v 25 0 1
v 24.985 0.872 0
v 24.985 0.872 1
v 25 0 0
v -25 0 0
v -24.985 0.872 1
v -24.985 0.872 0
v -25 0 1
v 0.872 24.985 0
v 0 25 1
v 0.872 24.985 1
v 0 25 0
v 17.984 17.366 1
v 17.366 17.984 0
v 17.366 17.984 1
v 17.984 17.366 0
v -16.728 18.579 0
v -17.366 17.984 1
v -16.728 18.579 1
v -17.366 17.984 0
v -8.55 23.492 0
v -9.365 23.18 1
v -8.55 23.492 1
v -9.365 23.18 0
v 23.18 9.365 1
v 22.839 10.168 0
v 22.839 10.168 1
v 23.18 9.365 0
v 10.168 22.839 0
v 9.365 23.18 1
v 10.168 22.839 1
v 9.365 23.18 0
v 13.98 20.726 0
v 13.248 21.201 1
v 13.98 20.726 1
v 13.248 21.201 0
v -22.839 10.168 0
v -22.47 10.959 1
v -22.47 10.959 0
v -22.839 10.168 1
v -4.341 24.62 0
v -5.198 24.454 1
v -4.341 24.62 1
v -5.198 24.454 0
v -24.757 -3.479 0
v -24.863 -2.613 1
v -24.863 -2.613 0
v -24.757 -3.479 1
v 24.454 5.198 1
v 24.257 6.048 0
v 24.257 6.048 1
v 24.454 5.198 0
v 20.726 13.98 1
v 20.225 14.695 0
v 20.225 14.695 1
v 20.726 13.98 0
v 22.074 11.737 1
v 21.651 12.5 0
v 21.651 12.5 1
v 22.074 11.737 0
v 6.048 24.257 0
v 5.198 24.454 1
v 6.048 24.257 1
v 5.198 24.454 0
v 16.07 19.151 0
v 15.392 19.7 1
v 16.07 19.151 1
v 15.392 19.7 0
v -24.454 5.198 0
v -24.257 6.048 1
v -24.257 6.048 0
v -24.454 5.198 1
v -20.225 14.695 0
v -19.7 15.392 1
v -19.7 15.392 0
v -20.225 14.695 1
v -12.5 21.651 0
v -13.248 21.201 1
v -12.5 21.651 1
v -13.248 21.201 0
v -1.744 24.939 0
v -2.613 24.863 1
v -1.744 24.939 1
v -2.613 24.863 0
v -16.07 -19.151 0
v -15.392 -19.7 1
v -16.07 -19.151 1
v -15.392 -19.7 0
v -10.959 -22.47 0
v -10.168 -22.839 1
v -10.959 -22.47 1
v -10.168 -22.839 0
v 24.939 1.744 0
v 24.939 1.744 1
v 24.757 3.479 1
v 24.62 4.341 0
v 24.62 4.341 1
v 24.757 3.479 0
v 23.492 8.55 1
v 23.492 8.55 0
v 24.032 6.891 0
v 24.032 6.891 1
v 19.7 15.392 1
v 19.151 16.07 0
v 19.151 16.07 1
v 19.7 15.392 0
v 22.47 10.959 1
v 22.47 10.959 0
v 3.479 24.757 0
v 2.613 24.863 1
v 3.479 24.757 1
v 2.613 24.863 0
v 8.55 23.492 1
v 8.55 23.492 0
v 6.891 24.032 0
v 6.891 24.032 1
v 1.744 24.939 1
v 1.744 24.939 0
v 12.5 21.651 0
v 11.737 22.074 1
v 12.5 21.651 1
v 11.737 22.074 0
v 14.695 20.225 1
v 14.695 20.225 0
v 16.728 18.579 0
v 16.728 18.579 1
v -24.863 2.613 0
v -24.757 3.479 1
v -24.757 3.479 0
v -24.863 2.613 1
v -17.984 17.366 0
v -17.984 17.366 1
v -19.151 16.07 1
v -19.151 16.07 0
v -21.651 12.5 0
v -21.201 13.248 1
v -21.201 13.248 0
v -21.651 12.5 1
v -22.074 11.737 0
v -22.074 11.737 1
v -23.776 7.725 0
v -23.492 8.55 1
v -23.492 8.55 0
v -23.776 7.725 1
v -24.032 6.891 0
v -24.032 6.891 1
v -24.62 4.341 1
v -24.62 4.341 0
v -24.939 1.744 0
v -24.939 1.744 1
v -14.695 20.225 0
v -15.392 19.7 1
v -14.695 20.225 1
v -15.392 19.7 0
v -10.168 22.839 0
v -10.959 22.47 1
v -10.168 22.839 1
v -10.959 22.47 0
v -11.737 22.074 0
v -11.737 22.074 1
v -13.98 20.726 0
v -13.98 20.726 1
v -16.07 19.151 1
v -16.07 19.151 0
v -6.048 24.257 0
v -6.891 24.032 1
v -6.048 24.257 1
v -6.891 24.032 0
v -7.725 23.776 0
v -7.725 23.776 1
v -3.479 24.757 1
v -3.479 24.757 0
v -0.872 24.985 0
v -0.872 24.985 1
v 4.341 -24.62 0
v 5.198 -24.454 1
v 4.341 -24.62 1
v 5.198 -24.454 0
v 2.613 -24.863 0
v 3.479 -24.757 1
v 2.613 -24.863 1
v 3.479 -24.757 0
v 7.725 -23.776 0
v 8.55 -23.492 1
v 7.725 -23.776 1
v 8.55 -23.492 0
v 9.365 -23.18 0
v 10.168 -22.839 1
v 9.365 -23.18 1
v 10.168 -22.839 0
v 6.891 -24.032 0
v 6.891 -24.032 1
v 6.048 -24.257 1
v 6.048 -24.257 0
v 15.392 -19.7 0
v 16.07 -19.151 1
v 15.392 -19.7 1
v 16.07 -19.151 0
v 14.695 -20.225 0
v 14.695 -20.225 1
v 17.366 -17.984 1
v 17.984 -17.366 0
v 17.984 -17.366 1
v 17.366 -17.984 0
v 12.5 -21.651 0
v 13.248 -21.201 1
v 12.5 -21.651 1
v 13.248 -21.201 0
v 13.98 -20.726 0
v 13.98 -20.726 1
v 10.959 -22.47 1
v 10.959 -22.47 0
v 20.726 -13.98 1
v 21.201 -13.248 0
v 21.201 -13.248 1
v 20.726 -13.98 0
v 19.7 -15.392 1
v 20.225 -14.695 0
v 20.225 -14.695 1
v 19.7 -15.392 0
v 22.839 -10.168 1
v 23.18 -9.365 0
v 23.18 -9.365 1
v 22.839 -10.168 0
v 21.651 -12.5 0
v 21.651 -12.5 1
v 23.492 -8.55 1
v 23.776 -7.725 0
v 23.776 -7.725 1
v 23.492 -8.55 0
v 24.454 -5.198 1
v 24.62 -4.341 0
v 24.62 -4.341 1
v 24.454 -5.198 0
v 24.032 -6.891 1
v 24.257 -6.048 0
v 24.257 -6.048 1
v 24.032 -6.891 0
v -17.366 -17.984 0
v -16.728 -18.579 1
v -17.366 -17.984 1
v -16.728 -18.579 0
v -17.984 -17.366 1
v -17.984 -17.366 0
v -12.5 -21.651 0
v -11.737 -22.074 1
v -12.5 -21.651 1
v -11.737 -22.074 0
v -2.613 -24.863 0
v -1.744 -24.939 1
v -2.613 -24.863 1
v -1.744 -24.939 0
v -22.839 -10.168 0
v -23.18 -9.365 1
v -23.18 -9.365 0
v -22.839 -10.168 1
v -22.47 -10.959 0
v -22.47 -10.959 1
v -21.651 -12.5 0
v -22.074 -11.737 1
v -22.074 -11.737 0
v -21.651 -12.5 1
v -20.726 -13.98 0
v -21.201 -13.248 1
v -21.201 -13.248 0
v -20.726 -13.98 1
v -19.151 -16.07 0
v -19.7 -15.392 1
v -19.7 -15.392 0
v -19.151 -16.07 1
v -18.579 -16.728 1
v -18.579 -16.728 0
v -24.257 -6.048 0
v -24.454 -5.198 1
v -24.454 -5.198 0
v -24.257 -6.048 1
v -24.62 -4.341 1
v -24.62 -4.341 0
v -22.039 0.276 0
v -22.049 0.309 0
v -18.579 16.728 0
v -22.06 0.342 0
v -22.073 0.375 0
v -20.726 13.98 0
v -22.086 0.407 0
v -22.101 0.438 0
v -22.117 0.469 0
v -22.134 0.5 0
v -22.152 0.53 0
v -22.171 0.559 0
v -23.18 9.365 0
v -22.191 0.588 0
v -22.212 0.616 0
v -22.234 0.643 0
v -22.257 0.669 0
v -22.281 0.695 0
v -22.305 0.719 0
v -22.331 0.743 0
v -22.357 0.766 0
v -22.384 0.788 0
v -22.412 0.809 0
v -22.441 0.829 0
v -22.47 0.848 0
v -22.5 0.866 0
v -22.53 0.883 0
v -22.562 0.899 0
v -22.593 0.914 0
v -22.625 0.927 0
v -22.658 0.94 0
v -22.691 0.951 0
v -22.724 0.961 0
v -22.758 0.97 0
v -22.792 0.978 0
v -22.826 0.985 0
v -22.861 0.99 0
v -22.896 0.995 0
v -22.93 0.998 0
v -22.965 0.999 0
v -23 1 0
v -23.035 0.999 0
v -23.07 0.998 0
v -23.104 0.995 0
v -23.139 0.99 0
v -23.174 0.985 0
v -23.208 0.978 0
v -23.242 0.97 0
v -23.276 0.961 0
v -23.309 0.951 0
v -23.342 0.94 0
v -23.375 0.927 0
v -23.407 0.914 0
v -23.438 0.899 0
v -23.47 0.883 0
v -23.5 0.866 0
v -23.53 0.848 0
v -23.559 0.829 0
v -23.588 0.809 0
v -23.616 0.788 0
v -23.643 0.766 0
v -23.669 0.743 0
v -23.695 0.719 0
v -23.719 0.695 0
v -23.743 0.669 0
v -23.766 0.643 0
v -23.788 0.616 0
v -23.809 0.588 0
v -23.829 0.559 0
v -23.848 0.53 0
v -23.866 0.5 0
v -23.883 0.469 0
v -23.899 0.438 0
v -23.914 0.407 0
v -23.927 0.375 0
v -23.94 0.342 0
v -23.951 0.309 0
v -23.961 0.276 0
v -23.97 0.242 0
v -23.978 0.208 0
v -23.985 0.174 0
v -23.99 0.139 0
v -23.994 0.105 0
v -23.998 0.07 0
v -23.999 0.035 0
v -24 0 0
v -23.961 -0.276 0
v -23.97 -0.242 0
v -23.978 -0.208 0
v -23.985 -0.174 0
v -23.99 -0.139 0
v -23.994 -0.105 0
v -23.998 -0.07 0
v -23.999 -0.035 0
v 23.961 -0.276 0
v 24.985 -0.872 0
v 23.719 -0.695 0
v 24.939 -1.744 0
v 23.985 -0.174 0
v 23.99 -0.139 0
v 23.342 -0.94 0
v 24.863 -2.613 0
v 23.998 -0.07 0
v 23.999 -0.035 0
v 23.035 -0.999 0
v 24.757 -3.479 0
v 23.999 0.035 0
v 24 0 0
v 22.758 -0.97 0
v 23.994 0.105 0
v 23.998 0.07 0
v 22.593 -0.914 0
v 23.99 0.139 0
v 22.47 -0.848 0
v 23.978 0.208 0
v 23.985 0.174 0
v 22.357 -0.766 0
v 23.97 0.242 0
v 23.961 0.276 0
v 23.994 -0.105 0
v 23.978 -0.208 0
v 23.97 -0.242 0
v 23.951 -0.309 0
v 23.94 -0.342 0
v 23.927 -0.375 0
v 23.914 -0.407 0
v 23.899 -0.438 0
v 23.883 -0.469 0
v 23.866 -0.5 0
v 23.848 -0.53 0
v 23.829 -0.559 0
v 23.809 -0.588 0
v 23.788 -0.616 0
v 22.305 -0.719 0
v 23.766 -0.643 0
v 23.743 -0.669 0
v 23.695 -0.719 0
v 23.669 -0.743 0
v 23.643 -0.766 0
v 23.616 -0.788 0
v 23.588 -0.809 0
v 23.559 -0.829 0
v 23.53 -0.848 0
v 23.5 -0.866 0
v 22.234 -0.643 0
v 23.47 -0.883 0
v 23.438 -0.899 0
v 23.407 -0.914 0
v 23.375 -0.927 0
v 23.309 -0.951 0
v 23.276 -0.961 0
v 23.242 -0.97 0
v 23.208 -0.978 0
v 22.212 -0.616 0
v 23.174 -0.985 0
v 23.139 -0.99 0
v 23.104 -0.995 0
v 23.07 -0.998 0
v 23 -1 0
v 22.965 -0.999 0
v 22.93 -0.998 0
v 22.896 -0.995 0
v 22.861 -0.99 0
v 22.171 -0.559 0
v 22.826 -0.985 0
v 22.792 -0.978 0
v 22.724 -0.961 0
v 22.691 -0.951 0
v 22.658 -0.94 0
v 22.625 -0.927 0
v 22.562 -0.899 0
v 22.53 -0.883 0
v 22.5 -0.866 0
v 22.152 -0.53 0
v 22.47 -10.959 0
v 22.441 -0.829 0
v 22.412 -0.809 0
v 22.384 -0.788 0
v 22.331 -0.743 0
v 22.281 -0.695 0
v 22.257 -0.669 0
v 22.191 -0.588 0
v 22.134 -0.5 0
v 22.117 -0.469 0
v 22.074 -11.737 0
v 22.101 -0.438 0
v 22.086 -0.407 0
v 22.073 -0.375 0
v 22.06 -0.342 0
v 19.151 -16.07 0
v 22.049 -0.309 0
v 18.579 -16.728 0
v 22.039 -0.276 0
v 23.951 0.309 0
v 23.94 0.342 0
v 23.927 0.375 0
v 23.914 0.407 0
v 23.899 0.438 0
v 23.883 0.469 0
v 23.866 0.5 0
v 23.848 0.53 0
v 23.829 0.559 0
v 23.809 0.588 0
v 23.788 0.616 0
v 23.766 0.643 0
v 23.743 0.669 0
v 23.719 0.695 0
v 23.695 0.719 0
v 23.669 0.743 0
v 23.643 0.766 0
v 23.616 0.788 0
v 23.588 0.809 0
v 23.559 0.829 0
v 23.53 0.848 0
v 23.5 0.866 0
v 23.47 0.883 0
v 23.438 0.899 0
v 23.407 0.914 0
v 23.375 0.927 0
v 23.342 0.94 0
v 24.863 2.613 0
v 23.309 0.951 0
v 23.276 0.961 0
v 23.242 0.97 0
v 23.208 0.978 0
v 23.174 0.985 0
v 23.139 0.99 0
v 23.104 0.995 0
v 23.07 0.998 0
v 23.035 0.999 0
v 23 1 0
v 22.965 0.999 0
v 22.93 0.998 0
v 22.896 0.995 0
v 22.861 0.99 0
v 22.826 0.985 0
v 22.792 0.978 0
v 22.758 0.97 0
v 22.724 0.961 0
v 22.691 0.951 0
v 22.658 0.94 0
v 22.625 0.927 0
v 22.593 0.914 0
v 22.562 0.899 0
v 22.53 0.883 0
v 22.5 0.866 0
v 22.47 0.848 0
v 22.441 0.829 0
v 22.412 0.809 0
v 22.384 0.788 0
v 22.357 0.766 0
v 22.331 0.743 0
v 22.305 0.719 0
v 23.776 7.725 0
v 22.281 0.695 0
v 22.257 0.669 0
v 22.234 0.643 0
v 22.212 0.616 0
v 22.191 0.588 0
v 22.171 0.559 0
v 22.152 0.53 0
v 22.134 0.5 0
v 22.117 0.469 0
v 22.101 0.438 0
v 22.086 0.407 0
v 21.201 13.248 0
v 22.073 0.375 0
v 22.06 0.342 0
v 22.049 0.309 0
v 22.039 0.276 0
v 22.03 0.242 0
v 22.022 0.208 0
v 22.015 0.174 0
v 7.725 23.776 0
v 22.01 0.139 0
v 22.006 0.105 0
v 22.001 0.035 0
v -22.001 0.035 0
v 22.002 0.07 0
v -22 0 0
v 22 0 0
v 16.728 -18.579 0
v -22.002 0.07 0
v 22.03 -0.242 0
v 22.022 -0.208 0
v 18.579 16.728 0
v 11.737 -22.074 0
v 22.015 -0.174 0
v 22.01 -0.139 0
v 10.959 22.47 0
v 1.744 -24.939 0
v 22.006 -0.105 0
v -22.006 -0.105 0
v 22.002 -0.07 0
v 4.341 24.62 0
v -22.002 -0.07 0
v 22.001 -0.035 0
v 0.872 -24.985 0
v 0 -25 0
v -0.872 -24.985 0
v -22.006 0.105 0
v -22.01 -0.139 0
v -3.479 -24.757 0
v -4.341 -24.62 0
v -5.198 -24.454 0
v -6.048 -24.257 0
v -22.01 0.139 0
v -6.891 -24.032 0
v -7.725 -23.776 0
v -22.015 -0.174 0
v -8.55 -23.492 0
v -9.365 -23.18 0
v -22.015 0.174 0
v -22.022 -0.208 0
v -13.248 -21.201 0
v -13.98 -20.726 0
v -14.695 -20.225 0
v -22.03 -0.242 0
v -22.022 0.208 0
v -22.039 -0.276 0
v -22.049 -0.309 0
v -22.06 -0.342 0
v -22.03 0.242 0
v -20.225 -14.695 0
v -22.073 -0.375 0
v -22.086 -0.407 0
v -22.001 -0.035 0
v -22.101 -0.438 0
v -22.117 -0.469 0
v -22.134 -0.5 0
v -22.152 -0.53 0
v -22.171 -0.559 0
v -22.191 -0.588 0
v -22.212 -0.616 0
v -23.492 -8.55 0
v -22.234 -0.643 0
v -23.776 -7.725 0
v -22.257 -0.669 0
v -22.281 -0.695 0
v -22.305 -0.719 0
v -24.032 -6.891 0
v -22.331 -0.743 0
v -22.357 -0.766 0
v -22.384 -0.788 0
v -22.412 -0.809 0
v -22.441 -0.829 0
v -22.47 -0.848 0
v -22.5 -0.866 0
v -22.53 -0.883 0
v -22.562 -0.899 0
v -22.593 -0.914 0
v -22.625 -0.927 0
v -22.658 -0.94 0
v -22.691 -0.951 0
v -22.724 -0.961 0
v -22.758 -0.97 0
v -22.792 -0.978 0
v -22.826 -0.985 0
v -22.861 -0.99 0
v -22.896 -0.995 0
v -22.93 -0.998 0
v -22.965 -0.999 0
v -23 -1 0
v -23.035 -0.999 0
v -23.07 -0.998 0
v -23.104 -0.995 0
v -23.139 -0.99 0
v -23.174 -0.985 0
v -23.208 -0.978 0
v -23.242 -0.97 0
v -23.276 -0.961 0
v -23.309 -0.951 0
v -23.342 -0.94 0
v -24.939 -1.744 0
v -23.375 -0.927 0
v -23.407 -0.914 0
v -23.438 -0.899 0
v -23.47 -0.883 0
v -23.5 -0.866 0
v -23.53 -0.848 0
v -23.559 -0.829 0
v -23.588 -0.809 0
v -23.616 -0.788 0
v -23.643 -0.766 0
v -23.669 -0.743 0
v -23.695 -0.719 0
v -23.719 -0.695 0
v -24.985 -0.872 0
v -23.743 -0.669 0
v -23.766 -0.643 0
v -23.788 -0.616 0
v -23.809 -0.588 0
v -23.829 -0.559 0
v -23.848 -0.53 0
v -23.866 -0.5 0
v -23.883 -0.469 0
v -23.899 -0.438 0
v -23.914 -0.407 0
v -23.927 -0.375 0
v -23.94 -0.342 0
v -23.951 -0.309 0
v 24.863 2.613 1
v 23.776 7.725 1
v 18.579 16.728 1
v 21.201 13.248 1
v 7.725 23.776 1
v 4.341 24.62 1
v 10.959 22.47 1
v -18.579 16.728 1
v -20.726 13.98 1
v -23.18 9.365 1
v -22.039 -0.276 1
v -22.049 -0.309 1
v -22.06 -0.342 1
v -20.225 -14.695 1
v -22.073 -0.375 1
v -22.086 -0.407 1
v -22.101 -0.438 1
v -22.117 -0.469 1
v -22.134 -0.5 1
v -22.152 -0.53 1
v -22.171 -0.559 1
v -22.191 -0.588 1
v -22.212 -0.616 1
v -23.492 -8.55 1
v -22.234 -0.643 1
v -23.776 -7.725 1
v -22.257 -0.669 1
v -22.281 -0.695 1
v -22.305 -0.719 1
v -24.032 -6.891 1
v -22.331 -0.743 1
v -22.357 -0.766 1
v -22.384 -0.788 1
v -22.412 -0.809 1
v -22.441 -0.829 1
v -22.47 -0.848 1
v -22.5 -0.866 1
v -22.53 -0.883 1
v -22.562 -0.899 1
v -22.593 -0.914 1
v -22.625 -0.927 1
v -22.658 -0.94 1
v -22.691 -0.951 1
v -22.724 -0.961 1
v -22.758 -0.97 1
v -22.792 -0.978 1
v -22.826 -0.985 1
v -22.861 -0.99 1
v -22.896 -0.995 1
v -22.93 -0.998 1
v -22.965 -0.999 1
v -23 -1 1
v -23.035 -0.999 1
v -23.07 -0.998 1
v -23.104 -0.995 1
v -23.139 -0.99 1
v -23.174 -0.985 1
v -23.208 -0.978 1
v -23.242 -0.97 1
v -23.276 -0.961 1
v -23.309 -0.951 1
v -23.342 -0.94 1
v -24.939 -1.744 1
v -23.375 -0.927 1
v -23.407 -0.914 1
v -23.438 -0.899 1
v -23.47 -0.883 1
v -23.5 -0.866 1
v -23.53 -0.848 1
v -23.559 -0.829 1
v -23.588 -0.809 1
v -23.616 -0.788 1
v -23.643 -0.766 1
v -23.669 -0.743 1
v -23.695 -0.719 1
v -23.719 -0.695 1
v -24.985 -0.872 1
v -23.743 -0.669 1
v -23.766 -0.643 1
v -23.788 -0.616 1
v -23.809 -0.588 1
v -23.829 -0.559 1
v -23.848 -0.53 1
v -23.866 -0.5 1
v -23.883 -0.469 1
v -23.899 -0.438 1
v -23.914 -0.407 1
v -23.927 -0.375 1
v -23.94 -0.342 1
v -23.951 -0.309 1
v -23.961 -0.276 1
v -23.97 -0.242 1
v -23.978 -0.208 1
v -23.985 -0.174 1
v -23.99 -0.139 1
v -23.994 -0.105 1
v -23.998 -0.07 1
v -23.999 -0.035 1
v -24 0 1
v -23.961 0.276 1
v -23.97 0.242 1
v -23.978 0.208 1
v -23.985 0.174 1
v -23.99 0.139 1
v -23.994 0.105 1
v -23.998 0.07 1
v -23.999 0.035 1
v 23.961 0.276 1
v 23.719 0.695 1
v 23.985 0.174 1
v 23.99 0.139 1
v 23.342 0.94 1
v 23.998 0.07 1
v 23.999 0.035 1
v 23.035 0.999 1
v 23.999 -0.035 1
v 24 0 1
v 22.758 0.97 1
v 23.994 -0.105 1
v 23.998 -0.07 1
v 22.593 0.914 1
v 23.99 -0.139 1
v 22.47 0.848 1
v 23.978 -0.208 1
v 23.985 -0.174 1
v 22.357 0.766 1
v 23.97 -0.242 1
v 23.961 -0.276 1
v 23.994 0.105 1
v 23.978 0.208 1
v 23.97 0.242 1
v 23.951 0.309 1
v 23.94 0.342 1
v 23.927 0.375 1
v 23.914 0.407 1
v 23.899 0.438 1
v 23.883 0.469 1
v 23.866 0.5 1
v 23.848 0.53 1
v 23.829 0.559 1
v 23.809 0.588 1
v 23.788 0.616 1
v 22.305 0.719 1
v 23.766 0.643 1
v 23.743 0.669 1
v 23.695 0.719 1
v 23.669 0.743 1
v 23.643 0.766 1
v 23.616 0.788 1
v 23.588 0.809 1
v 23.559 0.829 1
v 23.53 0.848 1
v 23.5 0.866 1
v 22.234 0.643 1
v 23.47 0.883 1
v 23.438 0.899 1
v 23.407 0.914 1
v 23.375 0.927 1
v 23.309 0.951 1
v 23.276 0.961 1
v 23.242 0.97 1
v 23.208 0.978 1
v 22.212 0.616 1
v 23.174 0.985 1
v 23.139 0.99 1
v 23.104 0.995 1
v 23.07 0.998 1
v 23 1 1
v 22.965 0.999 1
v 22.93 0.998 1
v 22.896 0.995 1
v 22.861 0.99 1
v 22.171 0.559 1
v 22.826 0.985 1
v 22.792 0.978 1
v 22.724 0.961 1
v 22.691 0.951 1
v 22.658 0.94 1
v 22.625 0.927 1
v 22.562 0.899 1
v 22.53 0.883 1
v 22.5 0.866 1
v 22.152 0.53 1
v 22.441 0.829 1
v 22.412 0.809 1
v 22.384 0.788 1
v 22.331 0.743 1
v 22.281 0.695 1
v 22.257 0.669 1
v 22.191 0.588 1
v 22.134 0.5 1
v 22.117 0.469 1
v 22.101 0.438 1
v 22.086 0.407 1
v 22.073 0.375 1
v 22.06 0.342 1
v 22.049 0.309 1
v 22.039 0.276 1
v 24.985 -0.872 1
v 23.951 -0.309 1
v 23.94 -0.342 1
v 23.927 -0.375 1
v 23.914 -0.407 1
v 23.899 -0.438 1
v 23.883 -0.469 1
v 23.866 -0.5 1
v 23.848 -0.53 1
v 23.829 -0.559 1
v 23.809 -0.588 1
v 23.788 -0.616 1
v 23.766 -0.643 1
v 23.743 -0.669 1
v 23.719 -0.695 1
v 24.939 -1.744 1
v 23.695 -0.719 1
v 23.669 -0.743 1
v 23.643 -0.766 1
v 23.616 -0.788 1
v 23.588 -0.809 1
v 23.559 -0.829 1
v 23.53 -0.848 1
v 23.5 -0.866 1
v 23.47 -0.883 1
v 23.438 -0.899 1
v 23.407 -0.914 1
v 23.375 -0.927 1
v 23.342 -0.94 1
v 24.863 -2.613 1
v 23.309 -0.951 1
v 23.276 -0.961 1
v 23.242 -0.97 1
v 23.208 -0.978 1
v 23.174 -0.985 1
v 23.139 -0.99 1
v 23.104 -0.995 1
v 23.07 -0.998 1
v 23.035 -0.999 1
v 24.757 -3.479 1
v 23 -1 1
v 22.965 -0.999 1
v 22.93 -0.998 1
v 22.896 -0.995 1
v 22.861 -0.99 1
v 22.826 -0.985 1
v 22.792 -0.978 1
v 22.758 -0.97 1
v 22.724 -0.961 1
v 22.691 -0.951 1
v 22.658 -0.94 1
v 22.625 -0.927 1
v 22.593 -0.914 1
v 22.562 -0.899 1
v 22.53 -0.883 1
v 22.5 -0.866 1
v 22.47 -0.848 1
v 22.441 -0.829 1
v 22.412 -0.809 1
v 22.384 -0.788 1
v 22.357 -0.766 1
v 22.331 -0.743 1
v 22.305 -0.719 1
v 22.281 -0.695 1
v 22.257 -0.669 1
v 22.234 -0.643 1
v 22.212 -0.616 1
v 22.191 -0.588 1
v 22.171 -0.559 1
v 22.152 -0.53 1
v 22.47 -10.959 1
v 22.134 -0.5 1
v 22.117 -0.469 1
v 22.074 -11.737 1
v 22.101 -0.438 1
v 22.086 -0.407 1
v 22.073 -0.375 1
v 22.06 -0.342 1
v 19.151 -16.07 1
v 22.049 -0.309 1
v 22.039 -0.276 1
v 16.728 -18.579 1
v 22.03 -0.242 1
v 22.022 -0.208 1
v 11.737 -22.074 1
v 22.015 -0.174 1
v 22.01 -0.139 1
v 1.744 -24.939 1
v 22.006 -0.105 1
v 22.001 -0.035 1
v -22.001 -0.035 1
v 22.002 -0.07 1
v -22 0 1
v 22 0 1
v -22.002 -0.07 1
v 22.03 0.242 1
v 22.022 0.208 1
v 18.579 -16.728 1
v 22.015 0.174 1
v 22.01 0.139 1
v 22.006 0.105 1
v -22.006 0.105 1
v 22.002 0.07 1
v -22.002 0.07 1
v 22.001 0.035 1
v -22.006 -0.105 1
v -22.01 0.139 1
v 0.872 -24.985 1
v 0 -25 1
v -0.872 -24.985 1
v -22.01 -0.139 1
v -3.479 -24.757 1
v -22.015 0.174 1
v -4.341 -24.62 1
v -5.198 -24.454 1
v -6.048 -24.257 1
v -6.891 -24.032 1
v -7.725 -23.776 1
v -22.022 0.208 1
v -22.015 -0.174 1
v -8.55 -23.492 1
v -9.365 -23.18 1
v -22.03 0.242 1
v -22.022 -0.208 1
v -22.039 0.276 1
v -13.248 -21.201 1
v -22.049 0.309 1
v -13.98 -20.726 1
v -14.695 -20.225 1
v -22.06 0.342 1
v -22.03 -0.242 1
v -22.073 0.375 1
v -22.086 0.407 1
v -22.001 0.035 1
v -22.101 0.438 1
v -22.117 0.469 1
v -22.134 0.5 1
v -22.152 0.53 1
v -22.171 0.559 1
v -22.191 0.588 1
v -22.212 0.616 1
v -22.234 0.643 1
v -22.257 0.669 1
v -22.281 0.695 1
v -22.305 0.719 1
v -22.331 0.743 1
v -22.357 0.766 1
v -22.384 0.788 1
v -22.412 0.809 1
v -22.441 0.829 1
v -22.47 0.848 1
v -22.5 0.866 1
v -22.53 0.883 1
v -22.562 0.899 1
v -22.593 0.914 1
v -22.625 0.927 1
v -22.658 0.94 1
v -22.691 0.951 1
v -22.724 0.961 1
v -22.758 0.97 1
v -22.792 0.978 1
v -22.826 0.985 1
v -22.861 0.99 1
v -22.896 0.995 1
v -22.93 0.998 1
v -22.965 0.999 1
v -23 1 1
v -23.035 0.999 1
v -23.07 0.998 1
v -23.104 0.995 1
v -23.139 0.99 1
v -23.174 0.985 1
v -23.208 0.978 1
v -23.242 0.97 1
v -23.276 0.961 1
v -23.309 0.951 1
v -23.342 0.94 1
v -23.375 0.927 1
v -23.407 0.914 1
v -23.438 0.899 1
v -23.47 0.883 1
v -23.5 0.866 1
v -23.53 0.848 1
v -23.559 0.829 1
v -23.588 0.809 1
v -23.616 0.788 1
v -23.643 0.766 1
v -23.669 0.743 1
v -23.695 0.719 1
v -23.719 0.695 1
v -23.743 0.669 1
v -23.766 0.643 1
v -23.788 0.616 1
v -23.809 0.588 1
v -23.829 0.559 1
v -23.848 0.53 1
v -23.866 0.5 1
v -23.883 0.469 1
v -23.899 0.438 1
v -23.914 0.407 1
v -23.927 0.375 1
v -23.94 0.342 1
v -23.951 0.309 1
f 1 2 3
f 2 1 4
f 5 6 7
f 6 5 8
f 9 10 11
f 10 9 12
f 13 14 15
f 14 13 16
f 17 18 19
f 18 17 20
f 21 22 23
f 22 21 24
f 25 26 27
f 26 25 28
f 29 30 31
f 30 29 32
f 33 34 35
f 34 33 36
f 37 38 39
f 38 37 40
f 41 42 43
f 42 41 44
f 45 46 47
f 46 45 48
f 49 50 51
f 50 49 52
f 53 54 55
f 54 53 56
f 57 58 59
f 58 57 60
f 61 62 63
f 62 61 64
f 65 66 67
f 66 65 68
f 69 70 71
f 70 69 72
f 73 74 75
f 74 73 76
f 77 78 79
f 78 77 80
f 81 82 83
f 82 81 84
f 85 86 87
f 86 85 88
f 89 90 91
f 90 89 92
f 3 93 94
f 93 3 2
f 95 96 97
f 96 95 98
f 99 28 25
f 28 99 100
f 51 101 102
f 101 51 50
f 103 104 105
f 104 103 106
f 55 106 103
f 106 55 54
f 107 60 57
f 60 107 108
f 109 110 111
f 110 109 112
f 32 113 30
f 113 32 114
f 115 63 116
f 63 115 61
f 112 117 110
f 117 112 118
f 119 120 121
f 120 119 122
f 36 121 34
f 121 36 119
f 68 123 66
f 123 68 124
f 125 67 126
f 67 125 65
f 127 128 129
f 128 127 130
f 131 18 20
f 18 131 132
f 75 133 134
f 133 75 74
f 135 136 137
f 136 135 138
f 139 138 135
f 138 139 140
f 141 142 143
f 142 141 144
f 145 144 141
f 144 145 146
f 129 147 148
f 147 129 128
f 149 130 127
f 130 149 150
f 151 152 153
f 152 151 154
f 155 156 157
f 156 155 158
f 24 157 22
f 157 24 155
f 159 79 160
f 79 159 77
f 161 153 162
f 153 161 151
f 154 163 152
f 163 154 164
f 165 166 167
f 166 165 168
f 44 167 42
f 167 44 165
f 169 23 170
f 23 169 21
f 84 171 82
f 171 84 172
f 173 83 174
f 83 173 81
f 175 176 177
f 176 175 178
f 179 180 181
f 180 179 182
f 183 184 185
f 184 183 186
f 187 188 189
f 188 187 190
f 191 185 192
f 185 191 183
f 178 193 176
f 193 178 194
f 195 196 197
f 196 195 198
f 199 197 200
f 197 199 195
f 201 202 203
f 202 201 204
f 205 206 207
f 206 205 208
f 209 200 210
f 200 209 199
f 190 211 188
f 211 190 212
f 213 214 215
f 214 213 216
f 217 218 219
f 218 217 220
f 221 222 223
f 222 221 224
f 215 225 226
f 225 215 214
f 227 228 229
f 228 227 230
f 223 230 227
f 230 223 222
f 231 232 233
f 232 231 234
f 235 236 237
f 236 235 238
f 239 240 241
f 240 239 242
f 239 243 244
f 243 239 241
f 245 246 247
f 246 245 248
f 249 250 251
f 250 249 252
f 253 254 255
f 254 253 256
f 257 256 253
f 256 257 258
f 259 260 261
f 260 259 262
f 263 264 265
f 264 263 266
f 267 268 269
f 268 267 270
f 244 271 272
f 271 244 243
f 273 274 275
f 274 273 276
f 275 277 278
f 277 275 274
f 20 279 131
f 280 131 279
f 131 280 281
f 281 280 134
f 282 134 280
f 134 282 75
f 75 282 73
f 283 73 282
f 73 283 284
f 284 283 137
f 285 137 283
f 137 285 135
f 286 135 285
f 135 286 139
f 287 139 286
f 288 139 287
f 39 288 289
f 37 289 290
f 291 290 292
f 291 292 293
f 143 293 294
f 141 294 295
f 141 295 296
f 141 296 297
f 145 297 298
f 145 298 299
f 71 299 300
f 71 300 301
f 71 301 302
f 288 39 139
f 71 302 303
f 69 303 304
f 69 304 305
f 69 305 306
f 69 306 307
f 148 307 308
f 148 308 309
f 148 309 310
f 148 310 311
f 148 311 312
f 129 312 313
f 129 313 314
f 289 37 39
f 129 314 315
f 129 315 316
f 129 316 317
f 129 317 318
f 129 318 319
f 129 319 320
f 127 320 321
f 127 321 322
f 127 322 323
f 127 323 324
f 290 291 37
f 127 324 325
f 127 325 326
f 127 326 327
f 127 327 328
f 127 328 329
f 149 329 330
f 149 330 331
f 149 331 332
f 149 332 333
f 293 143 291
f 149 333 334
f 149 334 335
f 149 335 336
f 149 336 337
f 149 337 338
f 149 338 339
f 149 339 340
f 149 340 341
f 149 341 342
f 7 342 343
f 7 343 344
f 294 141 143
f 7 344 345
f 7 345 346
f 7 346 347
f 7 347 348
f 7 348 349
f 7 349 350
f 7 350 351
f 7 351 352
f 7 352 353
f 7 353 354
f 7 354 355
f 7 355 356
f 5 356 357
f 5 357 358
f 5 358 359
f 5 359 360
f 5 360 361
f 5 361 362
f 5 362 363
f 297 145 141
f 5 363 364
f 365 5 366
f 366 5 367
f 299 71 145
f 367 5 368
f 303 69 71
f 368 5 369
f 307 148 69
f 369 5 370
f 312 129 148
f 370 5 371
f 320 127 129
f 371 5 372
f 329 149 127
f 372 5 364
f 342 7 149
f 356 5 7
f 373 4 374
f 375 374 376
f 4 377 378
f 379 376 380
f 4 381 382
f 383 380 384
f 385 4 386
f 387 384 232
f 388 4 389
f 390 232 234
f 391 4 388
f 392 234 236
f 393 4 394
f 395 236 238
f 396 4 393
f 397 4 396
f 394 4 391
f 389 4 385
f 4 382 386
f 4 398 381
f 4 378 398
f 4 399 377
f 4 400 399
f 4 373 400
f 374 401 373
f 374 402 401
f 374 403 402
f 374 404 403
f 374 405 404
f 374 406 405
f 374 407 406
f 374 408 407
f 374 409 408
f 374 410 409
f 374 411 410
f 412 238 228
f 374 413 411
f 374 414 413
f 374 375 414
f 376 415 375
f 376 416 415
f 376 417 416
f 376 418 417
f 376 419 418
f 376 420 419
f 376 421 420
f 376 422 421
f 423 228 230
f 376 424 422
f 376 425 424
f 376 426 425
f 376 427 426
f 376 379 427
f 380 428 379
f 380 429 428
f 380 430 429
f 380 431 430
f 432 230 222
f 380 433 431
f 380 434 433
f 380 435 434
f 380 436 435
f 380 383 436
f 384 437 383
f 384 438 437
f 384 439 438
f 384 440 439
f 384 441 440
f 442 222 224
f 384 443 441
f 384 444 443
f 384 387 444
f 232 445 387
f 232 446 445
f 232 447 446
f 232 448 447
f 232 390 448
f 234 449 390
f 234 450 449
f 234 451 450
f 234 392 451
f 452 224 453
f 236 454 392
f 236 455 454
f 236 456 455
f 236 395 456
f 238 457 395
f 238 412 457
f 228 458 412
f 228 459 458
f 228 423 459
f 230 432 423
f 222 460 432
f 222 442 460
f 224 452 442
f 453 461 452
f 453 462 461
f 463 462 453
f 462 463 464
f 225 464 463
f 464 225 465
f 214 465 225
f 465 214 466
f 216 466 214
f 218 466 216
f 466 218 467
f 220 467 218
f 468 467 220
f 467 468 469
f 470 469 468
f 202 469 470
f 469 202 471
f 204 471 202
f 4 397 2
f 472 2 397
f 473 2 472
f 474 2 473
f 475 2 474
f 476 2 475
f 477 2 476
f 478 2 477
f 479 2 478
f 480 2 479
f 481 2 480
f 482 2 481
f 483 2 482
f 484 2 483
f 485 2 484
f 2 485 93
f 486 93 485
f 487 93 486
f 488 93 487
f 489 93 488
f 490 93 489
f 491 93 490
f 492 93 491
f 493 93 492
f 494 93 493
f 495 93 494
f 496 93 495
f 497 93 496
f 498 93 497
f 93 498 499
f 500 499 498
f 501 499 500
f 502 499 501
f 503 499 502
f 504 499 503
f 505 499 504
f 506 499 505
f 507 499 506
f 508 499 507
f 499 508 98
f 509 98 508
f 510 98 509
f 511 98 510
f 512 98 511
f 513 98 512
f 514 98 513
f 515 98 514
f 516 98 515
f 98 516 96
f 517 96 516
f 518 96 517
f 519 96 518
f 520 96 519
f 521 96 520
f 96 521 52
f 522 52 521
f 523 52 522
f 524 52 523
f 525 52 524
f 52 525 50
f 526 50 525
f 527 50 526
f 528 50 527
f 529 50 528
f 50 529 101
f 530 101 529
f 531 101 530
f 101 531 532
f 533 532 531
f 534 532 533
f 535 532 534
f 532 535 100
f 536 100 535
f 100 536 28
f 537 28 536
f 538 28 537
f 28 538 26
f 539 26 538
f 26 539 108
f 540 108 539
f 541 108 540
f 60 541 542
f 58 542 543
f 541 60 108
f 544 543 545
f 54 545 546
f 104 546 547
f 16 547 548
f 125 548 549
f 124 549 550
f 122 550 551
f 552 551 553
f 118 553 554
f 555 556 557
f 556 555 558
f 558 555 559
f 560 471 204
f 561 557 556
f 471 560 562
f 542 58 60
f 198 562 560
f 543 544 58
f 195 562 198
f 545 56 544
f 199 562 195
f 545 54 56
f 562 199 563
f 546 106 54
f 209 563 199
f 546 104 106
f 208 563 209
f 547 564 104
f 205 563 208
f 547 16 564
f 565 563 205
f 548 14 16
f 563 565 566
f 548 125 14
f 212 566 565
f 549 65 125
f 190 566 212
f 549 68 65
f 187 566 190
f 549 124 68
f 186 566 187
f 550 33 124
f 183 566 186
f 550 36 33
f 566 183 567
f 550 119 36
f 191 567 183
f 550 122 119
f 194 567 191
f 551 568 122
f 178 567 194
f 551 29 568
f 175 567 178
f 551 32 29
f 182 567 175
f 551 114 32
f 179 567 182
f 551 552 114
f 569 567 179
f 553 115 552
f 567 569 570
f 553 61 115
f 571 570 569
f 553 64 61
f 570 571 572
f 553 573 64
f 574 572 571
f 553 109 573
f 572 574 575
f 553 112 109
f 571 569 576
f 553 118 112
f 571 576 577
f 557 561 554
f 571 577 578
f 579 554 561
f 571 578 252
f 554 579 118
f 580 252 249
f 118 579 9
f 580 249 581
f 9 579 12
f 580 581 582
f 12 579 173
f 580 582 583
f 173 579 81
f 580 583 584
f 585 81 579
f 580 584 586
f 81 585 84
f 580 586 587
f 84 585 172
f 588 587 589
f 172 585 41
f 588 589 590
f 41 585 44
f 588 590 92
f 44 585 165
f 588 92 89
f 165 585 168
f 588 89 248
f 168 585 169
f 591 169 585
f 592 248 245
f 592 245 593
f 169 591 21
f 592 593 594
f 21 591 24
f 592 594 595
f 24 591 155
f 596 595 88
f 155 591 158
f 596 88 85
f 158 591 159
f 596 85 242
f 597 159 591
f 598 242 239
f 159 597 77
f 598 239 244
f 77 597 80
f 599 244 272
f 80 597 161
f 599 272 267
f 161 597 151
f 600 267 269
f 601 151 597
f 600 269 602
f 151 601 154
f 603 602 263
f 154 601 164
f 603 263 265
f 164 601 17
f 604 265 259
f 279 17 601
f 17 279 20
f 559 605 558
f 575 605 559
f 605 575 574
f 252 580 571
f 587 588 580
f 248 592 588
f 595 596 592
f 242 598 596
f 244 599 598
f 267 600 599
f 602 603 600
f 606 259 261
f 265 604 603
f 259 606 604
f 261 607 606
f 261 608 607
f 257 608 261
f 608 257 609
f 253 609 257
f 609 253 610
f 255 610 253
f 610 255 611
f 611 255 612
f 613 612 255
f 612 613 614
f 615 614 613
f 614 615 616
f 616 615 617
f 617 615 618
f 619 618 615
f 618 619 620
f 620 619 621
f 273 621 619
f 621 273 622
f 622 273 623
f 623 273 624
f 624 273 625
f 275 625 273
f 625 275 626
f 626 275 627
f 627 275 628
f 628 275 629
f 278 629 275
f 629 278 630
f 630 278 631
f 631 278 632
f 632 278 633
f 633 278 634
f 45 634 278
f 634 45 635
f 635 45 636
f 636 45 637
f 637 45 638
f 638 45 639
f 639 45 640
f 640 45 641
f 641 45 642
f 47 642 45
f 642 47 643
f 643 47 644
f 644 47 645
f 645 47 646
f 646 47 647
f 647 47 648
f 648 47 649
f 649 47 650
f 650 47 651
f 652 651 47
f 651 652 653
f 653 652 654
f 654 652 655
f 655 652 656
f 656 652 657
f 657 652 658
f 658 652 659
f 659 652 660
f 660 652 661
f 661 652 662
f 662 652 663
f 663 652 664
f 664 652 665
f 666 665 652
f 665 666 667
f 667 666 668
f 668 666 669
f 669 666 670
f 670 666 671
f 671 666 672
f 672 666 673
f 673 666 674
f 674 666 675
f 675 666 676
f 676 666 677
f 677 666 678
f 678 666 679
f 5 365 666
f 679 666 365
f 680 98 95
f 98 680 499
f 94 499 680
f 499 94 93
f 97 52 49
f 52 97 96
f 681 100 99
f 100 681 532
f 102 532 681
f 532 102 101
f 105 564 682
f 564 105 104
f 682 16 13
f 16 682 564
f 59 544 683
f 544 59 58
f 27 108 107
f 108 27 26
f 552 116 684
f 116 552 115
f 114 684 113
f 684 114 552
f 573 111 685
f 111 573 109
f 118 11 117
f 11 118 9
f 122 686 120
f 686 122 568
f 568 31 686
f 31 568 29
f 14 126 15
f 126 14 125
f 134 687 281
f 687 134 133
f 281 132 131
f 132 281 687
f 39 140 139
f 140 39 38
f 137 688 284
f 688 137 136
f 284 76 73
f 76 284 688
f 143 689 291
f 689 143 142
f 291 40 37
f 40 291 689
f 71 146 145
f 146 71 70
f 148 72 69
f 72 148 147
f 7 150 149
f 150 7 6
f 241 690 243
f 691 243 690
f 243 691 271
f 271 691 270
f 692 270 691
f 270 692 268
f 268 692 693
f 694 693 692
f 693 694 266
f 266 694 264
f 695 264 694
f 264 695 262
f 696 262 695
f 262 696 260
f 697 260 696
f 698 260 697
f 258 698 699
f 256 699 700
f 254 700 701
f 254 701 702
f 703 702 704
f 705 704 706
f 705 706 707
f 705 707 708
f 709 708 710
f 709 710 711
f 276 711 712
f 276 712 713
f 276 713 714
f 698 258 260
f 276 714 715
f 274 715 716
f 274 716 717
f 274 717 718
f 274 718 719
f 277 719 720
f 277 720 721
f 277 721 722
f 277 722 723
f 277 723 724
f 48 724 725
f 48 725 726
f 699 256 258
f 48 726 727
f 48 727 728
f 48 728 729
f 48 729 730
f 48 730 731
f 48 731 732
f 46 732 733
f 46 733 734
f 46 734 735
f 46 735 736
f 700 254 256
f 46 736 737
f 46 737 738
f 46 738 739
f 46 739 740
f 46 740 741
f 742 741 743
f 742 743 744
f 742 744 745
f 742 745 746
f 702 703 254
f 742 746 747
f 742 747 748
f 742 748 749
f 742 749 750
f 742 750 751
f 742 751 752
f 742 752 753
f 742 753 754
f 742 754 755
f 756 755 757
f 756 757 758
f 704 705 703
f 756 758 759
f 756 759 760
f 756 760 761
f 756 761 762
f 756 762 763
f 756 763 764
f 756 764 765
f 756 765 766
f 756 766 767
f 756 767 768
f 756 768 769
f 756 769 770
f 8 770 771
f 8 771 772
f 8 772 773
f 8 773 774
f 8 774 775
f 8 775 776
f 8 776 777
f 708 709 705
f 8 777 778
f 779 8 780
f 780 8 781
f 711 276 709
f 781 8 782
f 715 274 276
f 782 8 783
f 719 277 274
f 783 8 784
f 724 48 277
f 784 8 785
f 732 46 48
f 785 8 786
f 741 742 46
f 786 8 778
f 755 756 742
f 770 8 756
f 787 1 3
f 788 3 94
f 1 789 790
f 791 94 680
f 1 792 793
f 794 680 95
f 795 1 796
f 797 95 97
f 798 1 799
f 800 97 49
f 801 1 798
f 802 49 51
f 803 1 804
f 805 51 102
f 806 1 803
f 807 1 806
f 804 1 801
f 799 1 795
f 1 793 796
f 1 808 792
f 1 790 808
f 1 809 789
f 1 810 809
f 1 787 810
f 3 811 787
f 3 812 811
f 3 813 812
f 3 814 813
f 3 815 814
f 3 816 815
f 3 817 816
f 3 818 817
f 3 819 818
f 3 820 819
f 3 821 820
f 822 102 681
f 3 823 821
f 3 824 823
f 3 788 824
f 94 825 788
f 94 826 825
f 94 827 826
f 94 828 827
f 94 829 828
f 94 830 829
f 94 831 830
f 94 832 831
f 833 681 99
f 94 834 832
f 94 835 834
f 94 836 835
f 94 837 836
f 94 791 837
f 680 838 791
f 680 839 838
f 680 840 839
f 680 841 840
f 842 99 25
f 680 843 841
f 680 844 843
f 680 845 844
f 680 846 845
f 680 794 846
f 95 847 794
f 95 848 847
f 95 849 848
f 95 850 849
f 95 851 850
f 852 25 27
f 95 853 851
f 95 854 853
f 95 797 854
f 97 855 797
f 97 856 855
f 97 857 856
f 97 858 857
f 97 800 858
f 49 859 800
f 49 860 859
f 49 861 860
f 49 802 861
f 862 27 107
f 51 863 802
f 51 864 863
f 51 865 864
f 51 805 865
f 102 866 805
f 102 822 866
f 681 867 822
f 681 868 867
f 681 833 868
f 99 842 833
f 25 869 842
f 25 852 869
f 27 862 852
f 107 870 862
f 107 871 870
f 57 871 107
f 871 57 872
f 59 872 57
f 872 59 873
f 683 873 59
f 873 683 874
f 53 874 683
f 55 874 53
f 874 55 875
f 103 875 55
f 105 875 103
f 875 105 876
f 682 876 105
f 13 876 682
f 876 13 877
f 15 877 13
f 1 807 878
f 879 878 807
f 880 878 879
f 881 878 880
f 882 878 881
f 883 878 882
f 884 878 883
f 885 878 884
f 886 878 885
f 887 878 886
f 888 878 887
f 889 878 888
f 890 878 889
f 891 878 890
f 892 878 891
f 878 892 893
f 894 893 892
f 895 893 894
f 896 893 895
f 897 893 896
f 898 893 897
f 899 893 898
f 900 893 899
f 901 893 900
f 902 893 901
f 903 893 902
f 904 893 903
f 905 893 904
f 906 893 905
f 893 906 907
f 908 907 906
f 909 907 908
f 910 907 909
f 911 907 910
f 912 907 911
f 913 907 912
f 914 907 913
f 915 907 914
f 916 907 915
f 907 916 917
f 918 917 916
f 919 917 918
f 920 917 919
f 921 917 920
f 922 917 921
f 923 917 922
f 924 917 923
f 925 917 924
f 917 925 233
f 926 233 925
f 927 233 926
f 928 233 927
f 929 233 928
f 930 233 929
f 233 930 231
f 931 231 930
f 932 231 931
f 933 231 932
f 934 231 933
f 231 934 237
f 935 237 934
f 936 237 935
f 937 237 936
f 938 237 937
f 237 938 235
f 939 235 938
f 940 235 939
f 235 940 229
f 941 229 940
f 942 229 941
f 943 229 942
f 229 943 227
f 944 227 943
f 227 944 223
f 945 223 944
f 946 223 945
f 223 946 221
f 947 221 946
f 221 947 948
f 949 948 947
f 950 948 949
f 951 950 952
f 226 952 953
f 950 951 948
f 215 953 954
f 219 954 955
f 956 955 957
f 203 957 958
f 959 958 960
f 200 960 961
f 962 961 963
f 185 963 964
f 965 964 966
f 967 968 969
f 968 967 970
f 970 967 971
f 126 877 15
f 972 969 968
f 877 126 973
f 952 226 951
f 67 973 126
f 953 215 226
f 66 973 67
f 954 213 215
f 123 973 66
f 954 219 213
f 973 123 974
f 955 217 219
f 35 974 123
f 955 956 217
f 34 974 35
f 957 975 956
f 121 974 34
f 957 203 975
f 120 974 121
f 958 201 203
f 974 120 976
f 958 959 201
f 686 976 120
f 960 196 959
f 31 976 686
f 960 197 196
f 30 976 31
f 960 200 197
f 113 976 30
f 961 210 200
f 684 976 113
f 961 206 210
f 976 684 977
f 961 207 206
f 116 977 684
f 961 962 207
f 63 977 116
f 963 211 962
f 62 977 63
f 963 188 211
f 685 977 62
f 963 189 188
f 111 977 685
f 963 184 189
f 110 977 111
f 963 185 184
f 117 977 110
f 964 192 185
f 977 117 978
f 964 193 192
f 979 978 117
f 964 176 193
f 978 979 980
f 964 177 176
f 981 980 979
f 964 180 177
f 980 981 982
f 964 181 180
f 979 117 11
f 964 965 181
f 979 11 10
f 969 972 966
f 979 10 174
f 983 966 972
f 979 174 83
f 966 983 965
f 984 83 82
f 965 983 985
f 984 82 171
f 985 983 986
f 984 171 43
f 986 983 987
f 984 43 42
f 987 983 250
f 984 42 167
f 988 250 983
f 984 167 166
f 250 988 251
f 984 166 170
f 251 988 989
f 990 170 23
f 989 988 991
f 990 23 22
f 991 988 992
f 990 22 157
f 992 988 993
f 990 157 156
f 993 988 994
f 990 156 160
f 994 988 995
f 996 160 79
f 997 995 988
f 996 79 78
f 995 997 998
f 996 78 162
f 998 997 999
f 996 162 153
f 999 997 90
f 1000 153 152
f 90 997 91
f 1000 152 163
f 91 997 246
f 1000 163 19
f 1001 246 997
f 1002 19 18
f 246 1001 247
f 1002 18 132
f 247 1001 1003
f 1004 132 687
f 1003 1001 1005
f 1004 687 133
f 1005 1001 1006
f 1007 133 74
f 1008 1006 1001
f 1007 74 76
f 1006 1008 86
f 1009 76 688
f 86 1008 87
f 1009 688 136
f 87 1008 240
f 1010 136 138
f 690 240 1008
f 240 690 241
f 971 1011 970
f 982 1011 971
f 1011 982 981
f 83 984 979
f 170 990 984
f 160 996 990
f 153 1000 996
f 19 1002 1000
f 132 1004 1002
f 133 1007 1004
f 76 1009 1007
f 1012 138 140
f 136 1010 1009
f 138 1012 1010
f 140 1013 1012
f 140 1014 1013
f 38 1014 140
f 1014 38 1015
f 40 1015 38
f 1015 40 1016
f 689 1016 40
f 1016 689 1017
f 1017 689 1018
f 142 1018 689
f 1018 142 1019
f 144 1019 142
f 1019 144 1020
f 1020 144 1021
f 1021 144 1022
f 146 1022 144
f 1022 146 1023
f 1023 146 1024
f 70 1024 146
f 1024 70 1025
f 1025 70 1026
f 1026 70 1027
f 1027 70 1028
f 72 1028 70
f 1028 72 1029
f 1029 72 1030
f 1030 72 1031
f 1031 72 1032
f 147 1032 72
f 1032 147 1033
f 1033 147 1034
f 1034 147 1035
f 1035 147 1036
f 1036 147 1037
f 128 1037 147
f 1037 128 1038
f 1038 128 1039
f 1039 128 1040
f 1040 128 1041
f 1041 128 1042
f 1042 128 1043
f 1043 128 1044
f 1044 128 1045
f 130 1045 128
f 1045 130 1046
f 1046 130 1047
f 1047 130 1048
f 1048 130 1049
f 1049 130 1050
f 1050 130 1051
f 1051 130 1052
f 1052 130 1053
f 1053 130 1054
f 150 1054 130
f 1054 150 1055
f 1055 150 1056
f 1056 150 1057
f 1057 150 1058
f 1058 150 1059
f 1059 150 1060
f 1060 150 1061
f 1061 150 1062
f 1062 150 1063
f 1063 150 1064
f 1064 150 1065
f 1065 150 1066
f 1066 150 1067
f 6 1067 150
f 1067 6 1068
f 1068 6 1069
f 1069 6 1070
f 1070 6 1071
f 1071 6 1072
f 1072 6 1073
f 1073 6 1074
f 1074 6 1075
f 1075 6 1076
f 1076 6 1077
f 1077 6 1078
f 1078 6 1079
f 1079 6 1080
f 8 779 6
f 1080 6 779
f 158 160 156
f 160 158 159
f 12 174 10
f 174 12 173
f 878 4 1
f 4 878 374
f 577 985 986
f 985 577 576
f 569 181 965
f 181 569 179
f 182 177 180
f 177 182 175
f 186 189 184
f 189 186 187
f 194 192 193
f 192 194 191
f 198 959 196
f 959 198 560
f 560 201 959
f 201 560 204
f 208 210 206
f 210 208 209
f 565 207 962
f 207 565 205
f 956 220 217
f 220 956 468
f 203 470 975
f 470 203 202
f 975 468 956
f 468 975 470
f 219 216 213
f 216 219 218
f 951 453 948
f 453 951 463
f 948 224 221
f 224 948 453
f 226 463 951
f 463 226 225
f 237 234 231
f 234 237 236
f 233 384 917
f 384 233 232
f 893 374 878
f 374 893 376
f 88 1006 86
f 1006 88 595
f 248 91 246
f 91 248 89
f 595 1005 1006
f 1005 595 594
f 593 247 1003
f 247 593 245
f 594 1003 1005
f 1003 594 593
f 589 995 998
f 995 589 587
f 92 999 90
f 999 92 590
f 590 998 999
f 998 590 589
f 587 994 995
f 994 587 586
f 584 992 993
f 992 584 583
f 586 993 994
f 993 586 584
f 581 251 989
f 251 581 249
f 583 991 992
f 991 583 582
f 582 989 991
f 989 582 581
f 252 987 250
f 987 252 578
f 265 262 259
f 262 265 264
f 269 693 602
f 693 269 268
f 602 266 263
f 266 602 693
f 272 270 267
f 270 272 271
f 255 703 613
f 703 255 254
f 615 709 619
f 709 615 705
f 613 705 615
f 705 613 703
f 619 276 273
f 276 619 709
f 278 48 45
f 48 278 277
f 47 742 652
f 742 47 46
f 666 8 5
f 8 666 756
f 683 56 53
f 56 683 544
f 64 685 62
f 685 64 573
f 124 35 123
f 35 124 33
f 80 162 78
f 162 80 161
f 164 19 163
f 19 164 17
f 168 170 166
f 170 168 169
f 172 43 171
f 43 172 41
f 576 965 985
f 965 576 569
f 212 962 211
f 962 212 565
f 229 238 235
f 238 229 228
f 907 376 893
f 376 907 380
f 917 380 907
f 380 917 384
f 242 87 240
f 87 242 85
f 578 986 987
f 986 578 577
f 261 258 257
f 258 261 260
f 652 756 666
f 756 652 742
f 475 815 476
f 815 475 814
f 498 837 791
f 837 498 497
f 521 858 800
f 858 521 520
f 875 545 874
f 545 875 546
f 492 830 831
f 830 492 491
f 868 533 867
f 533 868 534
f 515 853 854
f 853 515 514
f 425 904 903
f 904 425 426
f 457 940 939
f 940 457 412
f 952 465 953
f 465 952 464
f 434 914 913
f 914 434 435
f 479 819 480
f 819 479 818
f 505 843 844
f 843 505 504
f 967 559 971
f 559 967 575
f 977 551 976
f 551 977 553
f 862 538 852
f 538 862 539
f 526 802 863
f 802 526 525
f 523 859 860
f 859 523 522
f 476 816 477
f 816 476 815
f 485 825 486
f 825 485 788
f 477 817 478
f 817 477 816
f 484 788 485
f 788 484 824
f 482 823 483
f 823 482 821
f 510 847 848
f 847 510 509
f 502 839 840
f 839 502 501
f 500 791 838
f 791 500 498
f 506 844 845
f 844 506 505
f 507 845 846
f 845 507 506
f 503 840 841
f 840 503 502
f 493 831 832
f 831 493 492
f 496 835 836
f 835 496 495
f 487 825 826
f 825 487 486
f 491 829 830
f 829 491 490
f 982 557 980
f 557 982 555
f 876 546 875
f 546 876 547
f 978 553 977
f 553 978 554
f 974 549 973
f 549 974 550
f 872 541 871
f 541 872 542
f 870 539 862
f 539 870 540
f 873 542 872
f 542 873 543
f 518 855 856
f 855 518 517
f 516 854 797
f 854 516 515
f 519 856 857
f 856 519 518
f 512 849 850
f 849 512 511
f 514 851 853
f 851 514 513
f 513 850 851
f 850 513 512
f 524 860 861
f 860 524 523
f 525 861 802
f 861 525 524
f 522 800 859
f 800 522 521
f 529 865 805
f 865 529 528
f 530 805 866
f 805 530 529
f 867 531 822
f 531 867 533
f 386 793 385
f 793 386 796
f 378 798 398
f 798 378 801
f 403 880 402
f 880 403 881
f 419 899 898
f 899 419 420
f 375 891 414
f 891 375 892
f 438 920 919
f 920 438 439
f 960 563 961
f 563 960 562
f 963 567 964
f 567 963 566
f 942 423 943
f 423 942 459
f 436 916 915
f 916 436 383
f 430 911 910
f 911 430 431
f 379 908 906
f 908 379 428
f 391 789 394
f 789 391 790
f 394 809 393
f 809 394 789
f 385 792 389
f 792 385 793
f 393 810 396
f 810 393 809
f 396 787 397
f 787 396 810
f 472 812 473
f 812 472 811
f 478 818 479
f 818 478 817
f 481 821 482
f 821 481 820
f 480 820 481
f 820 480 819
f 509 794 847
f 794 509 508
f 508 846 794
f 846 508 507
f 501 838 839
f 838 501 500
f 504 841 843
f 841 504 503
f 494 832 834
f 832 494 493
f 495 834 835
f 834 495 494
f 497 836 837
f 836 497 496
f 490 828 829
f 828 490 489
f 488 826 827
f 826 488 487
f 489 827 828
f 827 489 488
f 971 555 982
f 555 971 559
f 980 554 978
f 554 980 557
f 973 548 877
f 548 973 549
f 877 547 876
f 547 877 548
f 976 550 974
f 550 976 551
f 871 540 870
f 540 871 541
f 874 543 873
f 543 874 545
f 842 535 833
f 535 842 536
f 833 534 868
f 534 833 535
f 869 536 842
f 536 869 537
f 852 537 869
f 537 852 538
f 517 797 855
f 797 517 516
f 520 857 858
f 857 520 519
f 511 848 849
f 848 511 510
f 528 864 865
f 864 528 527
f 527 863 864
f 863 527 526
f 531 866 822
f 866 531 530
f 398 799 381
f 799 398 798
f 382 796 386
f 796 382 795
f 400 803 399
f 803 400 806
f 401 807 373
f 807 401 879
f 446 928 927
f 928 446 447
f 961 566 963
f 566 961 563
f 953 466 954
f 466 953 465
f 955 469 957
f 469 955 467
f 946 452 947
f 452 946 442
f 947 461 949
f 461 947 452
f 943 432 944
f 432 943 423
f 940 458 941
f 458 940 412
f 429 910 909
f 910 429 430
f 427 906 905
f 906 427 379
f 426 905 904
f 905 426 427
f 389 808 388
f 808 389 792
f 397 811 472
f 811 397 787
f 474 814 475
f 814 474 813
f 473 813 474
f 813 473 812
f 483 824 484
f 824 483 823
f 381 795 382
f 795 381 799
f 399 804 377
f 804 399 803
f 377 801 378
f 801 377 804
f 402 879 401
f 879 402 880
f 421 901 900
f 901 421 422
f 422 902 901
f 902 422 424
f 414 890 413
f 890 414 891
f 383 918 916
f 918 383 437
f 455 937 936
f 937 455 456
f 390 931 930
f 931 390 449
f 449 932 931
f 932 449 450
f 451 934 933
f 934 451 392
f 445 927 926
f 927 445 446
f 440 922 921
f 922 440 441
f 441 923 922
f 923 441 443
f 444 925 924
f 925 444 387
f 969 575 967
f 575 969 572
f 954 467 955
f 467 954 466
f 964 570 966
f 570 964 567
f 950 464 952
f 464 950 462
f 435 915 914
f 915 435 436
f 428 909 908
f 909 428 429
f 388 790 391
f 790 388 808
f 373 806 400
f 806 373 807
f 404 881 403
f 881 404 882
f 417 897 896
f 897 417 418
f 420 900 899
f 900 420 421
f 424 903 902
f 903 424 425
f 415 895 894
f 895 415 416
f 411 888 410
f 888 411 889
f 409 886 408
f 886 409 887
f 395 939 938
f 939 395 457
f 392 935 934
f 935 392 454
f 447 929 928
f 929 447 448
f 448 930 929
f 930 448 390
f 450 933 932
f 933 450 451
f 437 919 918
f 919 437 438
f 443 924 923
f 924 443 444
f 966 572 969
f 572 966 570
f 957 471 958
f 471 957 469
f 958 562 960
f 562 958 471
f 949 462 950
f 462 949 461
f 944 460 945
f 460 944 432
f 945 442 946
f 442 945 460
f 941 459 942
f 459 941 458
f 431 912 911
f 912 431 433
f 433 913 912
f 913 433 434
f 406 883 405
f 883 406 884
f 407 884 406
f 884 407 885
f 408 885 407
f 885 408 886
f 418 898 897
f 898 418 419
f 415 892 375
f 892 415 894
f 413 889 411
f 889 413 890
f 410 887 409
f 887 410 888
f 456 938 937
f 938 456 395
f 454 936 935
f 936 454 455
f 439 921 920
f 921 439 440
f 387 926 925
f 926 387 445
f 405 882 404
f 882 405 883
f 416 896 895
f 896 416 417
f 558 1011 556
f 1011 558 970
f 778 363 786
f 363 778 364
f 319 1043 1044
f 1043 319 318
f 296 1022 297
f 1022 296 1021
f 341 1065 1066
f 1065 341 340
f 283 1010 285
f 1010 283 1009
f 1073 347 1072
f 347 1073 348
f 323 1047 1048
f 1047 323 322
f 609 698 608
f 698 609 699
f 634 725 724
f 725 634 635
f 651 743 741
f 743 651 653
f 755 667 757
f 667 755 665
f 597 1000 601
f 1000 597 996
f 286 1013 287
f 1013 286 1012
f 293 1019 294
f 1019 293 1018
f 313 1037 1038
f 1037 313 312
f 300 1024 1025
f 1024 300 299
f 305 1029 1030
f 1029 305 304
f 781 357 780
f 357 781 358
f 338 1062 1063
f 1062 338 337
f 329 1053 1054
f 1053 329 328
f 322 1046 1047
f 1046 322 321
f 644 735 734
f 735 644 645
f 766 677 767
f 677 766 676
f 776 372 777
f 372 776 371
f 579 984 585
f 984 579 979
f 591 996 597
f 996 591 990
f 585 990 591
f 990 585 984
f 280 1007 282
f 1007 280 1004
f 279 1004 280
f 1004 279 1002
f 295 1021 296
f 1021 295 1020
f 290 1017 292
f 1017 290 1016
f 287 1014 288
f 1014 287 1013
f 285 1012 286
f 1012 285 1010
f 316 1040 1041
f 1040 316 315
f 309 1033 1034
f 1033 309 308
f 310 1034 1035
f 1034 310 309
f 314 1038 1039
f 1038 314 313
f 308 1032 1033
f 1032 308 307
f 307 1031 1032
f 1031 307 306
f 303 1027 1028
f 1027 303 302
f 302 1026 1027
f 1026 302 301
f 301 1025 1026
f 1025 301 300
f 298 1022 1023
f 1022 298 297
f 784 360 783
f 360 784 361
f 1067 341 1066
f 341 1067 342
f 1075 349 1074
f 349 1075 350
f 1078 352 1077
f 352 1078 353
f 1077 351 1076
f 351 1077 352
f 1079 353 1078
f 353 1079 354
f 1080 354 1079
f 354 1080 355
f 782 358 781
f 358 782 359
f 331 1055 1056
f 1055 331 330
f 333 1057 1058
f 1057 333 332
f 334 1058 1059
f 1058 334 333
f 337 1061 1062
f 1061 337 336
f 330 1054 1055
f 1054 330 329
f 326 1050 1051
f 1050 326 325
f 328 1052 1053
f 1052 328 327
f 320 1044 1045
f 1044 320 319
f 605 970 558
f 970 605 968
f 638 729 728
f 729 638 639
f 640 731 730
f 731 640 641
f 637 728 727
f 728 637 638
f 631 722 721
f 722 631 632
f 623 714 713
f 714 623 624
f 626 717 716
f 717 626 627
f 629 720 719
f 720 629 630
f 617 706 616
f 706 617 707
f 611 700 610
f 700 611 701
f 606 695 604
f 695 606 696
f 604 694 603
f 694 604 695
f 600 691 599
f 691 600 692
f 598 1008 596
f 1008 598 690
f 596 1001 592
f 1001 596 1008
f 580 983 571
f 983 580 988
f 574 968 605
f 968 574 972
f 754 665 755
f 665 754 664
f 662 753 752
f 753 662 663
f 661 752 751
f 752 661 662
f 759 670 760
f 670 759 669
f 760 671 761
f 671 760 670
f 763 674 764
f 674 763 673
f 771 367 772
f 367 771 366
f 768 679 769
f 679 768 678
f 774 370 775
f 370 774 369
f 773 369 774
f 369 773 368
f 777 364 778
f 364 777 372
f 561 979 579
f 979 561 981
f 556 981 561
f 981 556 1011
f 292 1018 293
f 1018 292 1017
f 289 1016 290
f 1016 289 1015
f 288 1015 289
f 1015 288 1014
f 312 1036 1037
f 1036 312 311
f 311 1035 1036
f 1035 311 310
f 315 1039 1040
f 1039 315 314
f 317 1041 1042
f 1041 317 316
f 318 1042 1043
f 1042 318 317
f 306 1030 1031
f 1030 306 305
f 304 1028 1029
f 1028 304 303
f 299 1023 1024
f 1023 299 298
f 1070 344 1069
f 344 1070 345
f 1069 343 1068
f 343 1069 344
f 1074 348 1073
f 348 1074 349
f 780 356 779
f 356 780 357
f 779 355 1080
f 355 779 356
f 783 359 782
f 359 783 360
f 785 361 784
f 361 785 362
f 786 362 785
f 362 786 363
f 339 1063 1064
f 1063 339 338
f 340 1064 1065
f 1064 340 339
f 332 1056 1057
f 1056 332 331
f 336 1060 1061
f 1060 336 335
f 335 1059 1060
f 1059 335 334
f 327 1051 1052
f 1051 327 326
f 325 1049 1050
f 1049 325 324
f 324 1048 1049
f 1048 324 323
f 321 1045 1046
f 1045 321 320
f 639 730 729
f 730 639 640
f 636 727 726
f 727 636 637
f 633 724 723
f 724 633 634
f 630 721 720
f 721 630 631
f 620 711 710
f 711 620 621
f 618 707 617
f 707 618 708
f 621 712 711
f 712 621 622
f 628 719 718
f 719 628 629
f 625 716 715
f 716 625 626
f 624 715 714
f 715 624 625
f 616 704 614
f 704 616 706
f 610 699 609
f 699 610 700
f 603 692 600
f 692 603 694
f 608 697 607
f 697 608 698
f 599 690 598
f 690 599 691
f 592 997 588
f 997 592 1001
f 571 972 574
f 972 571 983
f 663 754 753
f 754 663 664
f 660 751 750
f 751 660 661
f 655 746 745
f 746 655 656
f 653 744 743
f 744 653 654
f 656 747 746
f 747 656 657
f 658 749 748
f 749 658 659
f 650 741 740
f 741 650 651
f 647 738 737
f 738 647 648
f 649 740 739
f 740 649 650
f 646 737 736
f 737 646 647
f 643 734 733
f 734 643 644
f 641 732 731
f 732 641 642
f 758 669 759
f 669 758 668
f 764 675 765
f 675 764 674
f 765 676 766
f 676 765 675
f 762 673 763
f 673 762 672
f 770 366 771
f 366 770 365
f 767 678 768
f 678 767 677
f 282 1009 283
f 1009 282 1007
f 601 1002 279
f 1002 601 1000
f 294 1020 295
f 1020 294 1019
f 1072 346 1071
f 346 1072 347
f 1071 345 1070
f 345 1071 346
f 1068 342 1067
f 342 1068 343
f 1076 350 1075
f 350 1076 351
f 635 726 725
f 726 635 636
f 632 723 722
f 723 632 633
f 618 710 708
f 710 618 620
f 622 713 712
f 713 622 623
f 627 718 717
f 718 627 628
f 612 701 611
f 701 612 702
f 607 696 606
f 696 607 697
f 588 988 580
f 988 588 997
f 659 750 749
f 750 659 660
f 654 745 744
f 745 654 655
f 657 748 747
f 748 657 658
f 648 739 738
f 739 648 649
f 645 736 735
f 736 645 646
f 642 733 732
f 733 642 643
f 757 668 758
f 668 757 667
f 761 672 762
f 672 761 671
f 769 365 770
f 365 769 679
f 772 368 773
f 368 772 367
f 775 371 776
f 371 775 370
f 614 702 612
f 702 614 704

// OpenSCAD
$fn = 180;

height = 1;

difference() {
    cylinder(d=50, h=height);
    translate([23, 0, 0]) cylinder(d=2, h=1);
    translate([-23, 0, 0]) cylinder(d=2, h=1);
}
